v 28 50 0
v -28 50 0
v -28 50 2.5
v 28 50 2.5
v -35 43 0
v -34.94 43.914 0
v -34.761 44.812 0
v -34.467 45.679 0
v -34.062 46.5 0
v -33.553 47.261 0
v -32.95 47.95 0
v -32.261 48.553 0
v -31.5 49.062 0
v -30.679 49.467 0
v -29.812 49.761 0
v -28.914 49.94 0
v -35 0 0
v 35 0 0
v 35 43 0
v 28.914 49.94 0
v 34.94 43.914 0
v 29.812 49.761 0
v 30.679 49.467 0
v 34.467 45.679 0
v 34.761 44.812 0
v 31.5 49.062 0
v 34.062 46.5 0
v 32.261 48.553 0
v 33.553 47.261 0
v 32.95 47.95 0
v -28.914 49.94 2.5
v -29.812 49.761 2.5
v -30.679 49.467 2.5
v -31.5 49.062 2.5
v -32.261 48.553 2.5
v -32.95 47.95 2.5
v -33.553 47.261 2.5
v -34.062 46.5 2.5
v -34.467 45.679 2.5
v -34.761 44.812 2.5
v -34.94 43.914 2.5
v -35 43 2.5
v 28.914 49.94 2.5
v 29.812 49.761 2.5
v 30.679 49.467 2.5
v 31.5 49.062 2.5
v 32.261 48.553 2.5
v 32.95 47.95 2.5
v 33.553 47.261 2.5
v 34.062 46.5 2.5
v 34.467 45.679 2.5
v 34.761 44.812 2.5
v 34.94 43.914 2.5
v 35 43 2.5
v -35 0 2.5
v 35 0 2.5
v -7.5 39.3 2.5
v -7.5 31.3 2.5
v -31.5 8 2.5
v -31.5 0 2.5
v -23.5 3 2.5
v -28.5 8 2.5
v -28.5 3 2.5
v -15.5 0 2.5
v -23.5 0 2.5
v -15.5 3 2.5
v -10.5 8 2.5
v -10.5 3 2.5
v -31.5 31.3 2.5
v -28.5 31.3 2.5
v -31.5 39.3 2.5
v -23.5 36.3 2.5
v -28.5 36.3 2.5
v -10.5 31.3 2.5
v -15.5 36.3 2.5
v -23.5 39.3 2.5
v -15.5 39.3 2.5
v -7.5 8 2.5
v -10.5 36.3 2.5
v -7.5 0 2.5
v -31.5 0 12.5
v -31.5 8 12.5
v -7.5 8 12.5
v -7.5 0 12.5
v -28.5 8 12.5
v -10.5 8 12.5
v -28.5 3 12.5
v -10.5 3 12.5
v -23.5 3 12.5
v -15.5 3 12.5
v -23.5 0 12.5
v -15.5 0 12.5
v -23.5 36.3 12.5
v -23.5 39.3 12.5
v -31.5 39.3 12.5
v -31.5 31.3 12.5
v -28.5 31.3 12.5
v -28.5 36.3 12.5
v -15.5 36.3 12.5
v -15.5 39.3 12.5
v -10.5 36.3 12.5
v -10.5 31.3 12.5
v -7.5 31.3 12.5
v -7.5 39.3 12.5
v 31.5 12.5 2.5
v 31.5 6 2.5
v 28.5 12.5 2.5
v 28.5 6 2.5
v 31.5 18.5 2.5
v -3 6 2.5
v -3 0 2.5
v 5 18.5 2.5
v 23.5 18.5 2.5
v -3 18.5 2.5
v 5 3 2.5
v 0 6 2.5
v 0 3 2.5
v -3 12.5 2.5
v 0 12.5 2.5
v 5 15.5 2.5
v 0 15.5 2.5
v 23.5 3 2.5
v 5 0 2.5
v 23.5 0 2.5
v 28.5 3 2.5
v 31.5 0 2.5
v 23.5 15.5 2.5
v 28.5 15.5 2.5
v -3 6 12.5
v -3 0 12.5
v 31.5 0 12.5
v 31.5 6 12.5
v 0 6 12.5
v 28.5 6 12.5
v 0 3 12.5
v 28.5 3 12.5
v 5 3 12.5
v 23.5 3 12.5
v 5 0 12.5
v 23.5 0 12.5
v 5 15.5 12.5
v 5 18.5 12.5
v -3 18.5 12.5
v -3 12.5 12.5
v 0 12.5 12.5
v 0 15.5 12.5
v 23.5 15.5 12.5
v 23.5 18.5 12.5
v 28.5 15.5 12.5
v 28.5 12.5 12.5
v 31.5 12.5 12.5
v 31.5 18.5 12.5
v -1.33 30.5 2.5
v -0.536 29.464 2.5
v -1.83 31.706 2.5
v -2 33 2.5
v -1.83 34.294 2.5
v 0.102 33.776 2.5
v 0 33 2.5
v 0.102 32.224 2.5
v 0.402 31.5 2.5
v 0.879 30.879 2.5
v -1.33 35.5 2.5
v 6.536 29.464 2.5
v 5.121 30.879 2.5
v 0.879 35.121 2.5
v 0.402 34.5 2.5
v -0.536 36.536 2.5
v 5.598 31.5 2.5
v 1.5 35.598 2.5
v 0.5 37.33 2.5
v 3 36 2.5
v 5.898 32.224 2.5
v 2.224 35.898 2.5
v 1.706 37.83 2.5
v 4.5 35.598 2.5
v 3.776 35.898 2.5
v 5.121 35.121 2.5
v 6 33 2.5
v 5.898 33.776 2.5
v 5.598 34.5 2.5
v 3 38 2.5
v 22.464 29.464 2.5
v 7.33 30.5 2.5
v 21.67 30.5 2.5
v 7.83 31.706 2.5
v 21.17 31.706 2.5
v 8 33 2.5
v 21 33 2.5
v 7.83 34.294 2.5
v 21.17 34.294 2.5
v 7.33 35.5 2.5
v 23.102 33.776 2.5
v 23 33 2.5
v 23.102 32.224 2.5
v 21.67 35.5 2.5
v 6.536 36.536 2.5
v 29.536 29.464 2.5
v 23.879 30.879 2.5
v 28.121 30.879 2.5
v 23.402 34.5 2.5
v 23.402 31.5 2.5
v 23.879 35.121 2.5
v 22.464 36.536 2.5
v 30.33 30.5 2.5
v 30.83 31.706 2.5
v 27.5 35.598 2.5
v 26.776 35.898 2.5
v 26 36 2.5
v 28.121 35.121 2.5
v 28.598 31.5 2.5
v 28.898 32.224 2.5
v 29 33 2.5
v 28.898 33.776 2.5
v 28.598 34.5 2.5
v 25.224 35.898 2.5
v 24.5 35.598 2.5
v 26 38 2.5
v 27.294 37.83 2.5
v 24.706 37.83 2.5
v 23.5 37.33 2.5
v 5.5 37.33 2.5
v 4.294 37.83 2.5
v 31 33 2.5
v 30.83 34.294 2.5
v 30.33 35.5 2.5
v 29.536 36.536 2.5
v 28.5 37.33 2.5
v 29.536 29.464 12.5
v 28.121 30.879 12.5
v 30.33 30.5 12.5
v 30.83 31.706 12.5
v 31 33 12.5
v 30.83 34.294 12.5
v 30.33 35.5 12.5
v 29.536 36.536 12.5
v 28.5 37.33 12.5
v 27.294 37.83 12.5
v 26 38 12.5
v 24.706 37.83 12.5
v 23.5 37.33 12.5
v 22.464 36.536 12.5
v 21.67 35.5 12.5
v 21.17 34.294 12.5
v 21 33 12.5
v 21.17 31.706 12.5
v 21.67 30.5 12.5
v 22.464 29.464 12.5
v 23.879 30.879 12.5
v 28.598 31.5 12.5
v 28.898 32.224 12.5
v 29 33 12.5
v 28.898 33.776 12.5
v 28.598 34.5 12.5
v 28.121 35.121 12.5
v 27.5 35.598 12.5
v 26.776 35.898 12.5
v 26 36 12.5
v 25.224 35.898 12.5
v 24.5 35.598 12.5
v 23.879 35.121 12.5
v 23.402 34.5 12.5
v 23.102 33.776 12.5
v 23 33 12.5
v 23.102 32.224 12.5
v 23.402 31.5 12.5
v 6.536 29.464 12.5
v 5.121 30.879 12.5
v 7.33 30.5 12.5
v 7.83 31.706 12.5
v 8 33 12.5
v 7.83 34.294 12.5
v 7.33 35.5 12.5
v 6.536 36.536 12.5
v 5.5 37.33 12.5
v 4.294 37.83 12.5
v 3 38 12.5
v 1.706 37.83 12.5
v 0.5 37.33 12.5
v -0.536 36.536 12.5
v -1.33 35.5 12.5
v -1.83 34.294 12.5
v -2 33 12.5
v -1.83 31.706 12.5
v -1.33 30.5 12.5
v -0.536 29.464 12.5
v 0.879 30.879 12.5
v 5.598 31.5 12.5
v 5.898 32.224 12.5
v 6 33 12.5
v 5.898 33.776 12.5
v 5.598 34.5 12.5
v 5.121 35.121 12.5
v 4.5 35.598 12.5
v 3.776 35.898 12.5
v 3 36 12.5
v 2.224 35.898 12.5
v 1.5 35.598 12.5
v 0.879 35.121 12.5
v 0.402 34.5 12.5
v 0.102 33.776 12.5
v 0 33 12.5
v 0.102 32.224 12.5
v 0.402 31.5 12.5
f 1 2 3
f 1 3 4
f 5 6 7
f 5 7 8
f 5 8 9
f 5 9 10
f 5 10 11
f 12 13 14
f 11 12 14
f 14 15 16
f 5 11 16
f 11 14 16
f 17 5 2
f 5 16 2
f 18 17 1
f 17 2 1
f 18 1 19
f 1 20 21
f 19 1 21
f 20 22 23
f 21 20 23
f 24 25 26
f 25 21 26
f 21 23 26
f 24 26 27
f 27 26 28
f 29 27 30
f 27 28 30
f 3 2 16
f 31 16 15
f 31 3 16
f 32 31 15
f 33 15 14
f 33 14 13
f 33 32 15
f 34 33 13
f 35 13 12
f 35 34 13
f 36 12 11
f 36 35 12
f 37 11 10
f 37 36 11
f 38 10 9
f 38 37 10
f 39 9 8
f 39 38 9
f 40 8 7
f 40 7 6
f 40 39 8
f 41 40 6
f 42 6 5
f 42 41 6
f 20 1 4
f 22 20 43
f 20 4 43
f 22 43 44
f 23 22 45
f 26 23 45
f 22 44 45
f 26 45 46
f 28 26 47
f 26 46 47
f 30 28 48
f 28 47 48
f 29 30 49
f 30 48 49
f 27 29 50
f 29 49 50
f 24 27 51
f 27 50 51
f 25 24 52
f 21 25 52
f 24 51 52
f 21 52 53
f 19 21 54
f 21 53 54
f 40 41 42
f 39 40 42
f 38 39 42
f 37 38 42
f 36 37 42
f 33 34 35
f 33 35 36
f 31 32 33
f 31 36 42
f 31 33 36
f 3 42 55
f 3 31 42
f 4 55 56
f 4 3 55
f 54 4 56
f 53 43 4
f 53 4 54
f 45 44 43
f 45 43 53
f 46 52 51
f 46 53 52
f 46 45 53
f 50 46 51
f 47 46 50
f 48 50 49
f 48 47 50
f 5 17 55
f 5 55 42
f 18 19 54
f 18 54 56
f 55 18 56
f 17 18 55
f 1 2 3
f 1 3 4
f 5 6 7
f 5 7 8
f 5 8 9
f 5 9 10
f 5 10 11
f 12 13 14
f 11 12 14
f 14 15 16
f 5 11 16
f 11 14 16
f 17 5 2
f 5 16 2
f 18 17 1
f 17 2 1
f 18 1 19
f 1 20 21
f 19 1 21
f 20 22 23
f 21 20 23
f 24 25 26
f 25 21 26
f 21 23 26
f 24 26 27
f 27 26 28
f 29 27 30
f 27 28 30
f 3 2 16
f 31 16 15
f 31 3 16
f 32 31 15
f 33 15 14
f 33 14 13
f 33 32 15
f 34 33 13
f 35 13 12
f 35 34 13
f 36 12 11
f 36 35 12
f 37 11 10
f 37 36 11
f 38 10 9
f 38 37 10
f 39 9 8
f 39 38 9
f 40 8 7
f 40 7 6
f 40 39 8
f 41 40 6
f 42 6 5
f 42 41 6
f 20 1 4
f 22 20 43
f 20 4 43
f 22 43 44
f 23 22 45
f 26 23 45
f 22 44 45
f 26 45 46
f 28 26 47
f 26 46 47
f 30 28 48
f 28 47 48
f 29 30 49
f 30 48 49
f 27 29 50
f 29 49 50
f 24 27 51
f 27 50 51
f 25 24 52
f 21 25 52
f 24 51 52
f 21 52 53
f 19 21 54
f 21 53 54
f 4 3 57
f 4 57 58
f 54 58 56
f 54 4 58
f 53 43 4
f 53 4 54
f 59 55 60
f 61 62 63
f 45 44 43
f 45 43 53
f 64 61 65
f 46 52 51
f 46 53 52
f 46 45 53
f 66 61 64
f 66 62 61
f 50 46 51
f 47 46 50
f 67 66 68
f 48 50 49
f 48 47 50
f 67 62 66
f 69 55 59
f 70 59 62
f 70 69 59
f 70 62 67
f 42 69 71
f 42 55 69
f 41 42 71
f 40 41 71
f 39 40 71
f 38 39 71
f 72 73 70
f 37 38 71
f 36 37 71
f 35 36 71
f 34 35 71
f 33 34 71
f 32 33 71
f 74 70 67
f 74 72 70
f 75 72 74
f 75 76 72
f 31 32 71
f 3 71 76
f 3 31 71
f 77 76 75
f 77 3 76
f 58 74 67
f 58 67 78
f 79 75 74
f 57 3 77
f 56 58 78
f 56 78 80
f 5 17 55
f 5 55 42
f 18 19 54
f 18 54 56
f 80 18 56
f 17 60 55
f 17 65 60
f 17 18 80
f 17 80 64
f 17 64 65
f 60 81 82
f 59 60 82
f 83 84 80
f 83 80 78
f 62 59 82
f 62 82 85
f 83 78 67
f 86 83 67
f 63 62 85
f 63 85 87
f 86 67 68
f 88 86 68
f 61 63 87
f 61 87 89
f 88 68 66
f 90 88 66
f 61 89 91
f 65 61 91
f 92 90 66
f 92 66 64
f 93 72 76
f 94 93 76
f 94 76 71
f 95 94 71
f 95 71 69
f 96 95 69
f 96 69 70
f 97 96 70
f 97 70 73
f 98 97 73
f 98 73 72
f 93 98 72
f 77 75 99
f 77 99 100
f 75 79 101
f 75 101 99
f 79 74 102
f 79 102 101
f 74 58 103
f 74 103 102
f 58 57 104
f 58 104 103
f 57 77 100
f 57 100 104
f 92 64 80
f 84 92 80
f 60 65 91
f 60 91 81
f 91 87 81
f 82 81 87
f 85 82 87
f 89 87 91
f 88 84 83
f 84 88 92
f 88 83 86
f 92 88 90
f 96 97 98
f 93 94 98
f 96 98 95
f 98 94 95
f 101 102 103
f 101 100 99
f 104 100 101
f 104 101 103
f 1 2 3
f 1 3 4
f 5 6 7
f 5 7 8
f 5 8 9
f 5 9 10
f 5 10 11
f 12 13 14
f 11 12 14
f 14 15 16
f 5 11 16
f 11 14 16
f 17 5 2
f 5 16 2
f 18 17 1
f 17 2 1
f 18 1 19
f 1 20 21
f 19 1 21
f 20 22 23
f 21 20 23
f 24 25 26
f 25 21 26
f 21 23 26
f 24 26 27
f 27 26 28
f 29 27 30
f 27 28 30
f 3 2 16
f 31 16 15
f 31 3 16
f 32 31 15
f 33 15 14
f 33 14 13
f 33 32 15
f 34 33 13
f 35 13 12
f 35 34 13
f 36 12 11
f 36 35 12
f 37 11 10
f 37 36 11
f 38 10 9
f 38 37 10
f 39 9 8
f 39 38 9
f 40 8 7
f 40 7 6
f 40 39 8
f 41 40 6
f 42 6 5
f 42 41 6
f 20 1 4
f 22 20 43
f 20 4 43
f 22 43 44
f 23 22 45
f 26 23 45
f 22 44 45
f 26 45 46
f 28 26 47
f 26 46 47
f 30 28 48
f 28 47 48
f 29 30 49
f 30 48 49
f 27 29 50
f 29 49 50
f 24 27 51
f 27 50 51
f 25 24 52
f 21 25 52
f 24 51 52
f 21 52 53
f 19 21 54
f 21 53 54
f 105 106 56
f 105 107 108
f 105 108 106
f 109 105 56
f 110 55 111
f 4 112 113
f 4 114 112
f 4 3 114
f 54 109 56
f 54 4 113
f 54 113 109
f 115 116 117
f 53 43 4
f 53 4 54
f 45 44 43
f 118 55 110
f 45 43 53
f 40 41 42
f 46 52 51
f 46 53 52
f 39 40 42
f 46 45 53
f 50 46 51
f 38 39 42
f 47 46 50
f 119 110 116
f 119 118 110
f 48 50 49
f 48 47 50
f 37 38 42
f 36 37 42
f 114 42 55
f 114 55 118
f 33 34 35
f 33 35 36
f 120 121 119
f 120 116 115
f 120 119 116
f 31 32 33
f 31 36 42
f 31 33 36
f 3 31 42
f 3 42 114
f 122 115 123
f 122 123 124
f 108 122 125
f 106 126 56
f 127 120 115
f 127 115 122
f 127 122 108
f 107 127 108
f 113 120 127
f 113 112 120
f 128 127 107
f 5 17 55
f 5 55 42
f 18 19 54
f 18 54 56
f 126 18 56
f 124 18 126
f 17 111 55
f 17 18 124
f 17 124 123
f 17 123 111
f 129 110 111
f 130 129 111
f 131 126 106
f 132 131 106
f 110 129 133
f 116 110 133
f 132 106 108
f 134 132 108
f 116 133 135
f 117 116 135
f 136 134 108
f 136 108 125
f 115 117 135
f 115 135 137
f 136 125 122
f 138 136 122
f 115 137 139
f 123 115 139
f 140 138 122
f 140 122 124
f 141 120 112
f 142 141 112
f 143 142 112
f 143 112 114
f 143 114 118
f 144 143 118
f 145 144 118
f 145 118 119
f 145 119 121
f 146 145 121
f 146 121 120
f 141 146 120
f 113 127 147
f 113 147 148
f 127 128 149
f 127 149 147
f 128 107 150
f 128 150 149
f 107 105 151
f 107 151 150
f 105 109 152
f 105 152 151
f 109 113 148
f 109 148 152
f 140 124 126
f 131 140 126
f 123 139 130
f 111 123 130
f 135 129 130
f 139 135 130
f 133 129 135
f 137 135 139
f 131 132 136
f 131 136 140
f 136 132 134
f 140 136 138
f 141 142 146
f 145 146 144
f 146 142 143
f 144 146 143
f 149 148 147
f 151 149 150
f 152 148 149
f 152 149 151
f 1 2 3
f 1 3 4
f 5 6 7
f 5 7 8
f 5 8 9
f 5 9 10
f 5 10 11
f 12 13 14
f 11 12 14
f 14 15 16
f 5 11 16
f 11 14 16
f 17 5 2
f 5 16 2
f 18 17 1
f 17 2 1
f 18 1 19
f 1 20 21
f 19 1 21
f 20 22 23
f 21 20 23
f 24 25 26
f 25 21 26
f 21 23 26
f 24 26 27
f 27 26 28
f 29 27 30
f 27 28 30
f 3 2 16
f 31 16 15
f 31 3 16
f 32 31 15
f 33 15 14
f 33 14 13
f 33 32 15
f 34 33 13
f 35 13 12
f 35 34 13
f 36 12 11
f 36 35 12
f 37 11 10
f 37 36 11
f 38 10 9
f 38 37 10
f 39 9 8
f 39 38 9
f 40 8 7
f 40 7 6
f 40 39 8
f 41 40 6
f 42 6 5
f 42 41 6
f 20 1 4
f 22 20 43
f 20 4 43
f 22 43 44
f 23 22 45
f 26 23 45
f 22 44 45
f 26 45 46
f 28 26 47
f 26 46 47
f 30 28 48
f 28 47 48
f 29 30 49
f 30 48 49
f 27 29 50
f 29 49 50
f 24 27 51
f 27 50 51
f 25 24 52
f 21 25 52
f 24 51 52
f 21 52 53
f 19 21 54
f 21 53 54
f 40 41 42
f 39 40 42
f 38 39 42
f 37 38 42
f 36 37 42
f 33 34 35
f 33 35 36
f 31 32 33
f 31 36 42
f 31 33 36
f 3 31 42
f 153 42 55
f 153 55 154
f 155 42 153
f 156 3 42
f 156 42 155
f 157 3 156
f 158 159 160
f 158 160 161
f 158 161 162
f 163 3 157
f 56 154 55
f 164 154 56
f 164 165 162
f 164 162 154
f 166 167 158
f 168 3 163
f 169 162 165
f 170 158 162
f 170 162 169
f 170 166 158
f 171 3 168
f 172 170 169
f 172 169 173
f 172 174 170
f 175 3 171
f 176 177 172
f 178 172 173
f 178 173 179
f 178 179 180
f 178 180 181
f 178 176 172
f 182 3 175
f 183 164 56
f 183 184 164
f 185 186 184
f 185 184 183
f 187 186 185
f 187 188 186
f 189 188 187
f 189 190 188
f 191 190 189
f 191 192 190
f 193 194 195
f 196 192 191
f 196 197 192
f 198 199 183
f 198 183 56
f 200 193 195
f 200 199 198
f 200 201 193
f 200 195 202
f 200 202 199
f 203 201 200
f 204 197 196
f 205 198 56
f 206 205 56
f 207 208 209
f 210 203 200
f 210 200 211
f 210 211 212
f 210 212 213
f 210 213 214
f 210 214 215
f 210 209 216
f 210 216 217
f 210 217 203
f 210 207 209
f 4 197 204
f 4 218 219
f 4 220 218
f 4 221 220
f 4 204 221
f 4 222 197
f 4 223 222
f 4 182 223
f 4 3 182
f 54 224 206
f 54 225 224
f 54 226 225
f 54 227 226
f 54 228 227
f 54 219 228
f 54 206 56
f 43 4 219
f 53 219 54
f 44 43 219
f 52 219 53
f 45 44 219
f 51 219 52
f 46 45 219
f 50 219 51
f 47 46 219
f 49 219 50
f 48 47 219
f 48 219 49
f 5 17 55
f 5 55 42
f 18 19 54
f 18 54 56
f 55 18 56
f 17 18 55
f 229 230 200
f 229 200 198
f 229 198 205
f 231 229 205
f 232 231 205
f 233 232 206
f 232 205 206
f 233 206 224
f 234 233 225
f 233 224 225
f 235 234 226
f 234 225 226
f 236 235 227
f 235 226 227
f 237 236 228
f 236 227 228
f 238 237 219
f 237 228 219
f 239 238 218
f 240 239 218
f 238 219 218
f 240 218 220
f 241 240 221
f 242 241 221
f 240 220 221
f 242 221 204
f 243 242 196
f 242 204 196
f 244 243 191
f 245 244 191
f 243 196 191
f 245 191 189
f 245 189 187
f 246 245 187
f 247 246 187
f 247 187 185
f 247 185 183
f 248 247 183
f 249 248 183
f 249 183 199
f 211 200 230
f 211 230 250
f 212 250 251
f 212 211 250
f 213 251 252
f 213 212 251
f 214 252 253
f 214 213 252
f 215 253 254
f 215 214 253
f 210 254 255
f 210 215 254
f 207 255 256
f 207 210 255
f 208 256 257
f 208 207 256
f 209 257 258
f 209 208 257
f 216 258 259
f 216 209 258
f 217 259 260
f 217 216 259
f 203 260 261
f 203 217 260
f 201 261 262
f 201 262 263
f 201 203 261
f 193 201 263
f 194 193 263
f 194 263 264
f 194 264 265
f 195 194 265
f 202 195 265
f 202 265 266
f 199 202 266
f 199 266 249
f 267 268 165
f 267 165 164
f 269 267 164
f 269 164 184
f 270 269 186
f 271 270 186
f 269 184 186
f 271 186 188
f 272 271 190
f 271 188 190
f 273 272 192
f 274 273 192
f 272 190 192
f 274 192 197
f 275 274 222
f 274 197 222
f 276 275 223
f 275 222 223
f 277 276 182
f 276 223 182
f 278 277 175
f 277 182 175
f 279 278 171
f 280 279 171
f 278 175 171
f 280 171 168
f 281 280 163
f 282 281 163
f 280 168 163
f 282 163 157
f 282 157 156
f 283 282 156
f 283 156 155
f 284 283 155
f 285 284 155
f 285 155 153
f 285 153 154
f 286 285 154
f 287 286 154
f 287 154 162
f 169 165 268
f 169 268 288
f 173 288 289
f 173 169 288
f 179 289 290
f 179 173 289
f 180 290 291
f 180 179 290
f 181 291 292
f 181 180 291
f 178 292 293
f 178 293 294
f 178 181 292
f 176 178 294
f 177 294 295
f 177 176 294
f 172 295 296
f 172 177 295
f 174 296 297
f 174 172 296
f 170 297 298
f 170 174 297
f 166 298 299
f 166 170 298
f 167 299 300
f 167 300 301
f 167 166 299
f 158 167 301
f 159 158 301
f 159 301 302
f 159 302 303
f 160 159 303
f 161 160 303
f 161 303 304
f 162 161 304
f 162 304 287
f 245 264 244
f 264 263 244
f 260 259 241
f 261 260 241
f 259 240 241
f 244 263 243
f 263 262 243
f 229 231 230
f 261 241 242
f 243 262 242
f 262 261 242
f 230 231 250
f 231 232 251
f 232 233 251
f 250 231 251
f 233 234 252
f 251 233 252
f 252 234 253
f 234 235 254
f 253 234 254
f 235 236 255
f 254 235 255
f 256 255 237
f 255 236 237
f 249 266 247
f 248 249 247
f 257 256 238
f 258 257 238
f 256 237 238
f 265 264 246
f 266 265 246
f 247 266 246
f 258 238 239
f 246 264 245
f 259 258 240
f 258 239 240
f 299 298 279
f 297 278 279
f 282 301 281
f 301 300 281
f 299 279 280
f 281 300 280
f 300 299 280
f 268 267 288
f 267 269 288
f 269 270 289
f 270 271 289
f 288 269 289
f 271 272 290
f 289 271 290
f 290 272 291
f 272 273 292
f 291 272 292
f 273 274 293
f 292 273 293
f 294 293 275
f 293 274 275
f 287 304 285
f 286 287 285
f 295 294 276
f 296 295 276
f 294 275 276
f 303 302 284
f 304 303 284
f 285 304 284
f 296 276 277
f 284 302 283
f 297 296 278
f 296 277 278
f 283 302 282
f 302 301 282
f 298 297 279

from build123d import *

# Parameters (mm, degrees)
SKETCH001_W  = 70
SKETCH001_H  = 50
PAD_DEPTH    = 2.5
FILLET_R     = 7
PAD003_DEPTH = 10
FILLET001_R  = 7
PAD004_DEPTH = 10
FILLET002_R  = 7
PAD006_DEPTH = 10
FILLET003_R  = 7


with BuildPart() as baseplate:
    # Sketch001 → Pad (new body)
    with BuildSketch(Plane.XY):
        with Locations((0, 25)):
            Rectangle(SKETCH001_W, SKETCH001_H)
    extrude(amount=PAD_DEPTH)


with BuildPart() as fillet_body:
    # Fillet base: copy of BasePlate
    add(baseplate.part)

    # Fillet
    fillet_edges = [fillet_body.edges().sort_by_distance(p)[0] for p in [
        (35, 50, 1.25),
        (-35, 50, 1.25),
    ]]
    fillet(fillet_edges, radius=FILLET_R)


with BuildPart() as fillet001:
    # Pad003 base: copy of BasePlate
    add(baseplate.part)

    # Sketch006 (on Face6 of Pad) → Pad003 (new body)
    with BuildSketch(Plane.XY.offset(2.5)):
        Polygon((23.5, 18.5), (31.5, 18.5), (31.5, 12.5), (28.5, 12.5), (28.5, 15.5), (23.5, 15.5), align=None)
        Polygon((5, 18.5), (-3, 18.5), (-3, 12.5), (0, 12.5), (0, 15.5), (5, 15.5), align=None)
        Polygon((5, 0), (-3, 0), (-3, 6), (0, 6), (0, 3), (5, 3), align=None)
        Polygon((23.5, 0), (31.5, 0), (31.5, 6), (28.5, 6), (28.5, 3), (23.5, 3), align=None)
    extrude(amount=PAD003_DEPTH)

    # Fillet001
    fillet001_edges = [fillet001.edges().sort_by_distance(p)[0] for p in [
        (-35, 50, 1.25),
        (35, 50, 1.25),
    ]]
    fillet(fillet001_edges, radius=FILLET001_R)


with BuildPart() as fillet002:
    # Pad004 base: copy of BasePlate
    add(baseplate.part)

    # Sketch008 (on Face6 of Pad) → Pad004 (new body)
    with BuildSketch(Plane.XY.offset(2.5)):
        Polygon((-15.5, 39.3), (-7.5, 39.3), (-7.5, 31.3), (-10.5, 31.3), (-10.5, 36.3), (-15.5, 36.3), align=None)
        Polygon((-23.5, 39.3), (-31.5, 39.3), (-31.5, 31.3), (-28.5, 31.3), (-28.5, 36.3), (-23.5, 36.3), align=None)
        Polygon((-23.5, 0), (-31.5, 0), (-31.5, 8), (-28.5, 8), (-28.5, 3), (-23.5, 3), align=None)
        Polygon((-15.5, 0), (-7.5, 0), (-7.5, 8), (-10.5, 8), (-10.5, 3), (-15.5, 3), align=None)
    extrude(amount=PAD004_DEPTH)

    # Fillet002
    fillet002_edges = [fillet002.edges().sort_by_distance(p)[0] for p in [
        (35, 50, 1.25),
        (-35, 50, 1.25),
    ]]
    fillet(fillet002_edges, radius=FILLET002_R)


with BuildPart() as fillet003:
    # Pad006 base: copy of BasePlate
    add(baseplate.part)

    # Sketch010 (on Face6 of Pad) → Pad006 (new body)
    with BuildSketch(Plane.XY.offset(2.5)):
        with BuildLine():
            ThreePointArc((5.12132, 30.87868), (3, 36), (0.87868, 30.87868))
            Line((-0.535534, 29.464466), (0.87868, 30.87868))
            ThreePointArc((6.535534, 29.464466), (3, 38), (-0.535534, 29.464466))
            Line((5.12132, 30.87868), (6.535534, 29.464466))
        make_face()
        with BuildLine():
            ThreePointArc((28.12132, 30.87868), (26, 36), (23.87868, 30.87868))
            Line((22.464466, 29.464466), (23.87868, 30.87868))
            ThreePointArc((29.535534, 29.464466), (26, 38), (22.464466, 29.464466))
            Line((28.12132, 30.87868), (29.535534, 29.464466))
        make_face()
    extrude(amount=PAD006_DEPTH)

    # Fillet003
    fillet003_edges = [fillet003.edges().sort_by_distance(p)[0] for p in [
        (-35, 50, 1.25),
        (35, 50, 1.25),
    ]]
    fillet(fillet003_edges, radius=FILLET003_R)


solid = Compound([fillet_body.part, fillet001.part, fillet002.part, fillet003.part])
